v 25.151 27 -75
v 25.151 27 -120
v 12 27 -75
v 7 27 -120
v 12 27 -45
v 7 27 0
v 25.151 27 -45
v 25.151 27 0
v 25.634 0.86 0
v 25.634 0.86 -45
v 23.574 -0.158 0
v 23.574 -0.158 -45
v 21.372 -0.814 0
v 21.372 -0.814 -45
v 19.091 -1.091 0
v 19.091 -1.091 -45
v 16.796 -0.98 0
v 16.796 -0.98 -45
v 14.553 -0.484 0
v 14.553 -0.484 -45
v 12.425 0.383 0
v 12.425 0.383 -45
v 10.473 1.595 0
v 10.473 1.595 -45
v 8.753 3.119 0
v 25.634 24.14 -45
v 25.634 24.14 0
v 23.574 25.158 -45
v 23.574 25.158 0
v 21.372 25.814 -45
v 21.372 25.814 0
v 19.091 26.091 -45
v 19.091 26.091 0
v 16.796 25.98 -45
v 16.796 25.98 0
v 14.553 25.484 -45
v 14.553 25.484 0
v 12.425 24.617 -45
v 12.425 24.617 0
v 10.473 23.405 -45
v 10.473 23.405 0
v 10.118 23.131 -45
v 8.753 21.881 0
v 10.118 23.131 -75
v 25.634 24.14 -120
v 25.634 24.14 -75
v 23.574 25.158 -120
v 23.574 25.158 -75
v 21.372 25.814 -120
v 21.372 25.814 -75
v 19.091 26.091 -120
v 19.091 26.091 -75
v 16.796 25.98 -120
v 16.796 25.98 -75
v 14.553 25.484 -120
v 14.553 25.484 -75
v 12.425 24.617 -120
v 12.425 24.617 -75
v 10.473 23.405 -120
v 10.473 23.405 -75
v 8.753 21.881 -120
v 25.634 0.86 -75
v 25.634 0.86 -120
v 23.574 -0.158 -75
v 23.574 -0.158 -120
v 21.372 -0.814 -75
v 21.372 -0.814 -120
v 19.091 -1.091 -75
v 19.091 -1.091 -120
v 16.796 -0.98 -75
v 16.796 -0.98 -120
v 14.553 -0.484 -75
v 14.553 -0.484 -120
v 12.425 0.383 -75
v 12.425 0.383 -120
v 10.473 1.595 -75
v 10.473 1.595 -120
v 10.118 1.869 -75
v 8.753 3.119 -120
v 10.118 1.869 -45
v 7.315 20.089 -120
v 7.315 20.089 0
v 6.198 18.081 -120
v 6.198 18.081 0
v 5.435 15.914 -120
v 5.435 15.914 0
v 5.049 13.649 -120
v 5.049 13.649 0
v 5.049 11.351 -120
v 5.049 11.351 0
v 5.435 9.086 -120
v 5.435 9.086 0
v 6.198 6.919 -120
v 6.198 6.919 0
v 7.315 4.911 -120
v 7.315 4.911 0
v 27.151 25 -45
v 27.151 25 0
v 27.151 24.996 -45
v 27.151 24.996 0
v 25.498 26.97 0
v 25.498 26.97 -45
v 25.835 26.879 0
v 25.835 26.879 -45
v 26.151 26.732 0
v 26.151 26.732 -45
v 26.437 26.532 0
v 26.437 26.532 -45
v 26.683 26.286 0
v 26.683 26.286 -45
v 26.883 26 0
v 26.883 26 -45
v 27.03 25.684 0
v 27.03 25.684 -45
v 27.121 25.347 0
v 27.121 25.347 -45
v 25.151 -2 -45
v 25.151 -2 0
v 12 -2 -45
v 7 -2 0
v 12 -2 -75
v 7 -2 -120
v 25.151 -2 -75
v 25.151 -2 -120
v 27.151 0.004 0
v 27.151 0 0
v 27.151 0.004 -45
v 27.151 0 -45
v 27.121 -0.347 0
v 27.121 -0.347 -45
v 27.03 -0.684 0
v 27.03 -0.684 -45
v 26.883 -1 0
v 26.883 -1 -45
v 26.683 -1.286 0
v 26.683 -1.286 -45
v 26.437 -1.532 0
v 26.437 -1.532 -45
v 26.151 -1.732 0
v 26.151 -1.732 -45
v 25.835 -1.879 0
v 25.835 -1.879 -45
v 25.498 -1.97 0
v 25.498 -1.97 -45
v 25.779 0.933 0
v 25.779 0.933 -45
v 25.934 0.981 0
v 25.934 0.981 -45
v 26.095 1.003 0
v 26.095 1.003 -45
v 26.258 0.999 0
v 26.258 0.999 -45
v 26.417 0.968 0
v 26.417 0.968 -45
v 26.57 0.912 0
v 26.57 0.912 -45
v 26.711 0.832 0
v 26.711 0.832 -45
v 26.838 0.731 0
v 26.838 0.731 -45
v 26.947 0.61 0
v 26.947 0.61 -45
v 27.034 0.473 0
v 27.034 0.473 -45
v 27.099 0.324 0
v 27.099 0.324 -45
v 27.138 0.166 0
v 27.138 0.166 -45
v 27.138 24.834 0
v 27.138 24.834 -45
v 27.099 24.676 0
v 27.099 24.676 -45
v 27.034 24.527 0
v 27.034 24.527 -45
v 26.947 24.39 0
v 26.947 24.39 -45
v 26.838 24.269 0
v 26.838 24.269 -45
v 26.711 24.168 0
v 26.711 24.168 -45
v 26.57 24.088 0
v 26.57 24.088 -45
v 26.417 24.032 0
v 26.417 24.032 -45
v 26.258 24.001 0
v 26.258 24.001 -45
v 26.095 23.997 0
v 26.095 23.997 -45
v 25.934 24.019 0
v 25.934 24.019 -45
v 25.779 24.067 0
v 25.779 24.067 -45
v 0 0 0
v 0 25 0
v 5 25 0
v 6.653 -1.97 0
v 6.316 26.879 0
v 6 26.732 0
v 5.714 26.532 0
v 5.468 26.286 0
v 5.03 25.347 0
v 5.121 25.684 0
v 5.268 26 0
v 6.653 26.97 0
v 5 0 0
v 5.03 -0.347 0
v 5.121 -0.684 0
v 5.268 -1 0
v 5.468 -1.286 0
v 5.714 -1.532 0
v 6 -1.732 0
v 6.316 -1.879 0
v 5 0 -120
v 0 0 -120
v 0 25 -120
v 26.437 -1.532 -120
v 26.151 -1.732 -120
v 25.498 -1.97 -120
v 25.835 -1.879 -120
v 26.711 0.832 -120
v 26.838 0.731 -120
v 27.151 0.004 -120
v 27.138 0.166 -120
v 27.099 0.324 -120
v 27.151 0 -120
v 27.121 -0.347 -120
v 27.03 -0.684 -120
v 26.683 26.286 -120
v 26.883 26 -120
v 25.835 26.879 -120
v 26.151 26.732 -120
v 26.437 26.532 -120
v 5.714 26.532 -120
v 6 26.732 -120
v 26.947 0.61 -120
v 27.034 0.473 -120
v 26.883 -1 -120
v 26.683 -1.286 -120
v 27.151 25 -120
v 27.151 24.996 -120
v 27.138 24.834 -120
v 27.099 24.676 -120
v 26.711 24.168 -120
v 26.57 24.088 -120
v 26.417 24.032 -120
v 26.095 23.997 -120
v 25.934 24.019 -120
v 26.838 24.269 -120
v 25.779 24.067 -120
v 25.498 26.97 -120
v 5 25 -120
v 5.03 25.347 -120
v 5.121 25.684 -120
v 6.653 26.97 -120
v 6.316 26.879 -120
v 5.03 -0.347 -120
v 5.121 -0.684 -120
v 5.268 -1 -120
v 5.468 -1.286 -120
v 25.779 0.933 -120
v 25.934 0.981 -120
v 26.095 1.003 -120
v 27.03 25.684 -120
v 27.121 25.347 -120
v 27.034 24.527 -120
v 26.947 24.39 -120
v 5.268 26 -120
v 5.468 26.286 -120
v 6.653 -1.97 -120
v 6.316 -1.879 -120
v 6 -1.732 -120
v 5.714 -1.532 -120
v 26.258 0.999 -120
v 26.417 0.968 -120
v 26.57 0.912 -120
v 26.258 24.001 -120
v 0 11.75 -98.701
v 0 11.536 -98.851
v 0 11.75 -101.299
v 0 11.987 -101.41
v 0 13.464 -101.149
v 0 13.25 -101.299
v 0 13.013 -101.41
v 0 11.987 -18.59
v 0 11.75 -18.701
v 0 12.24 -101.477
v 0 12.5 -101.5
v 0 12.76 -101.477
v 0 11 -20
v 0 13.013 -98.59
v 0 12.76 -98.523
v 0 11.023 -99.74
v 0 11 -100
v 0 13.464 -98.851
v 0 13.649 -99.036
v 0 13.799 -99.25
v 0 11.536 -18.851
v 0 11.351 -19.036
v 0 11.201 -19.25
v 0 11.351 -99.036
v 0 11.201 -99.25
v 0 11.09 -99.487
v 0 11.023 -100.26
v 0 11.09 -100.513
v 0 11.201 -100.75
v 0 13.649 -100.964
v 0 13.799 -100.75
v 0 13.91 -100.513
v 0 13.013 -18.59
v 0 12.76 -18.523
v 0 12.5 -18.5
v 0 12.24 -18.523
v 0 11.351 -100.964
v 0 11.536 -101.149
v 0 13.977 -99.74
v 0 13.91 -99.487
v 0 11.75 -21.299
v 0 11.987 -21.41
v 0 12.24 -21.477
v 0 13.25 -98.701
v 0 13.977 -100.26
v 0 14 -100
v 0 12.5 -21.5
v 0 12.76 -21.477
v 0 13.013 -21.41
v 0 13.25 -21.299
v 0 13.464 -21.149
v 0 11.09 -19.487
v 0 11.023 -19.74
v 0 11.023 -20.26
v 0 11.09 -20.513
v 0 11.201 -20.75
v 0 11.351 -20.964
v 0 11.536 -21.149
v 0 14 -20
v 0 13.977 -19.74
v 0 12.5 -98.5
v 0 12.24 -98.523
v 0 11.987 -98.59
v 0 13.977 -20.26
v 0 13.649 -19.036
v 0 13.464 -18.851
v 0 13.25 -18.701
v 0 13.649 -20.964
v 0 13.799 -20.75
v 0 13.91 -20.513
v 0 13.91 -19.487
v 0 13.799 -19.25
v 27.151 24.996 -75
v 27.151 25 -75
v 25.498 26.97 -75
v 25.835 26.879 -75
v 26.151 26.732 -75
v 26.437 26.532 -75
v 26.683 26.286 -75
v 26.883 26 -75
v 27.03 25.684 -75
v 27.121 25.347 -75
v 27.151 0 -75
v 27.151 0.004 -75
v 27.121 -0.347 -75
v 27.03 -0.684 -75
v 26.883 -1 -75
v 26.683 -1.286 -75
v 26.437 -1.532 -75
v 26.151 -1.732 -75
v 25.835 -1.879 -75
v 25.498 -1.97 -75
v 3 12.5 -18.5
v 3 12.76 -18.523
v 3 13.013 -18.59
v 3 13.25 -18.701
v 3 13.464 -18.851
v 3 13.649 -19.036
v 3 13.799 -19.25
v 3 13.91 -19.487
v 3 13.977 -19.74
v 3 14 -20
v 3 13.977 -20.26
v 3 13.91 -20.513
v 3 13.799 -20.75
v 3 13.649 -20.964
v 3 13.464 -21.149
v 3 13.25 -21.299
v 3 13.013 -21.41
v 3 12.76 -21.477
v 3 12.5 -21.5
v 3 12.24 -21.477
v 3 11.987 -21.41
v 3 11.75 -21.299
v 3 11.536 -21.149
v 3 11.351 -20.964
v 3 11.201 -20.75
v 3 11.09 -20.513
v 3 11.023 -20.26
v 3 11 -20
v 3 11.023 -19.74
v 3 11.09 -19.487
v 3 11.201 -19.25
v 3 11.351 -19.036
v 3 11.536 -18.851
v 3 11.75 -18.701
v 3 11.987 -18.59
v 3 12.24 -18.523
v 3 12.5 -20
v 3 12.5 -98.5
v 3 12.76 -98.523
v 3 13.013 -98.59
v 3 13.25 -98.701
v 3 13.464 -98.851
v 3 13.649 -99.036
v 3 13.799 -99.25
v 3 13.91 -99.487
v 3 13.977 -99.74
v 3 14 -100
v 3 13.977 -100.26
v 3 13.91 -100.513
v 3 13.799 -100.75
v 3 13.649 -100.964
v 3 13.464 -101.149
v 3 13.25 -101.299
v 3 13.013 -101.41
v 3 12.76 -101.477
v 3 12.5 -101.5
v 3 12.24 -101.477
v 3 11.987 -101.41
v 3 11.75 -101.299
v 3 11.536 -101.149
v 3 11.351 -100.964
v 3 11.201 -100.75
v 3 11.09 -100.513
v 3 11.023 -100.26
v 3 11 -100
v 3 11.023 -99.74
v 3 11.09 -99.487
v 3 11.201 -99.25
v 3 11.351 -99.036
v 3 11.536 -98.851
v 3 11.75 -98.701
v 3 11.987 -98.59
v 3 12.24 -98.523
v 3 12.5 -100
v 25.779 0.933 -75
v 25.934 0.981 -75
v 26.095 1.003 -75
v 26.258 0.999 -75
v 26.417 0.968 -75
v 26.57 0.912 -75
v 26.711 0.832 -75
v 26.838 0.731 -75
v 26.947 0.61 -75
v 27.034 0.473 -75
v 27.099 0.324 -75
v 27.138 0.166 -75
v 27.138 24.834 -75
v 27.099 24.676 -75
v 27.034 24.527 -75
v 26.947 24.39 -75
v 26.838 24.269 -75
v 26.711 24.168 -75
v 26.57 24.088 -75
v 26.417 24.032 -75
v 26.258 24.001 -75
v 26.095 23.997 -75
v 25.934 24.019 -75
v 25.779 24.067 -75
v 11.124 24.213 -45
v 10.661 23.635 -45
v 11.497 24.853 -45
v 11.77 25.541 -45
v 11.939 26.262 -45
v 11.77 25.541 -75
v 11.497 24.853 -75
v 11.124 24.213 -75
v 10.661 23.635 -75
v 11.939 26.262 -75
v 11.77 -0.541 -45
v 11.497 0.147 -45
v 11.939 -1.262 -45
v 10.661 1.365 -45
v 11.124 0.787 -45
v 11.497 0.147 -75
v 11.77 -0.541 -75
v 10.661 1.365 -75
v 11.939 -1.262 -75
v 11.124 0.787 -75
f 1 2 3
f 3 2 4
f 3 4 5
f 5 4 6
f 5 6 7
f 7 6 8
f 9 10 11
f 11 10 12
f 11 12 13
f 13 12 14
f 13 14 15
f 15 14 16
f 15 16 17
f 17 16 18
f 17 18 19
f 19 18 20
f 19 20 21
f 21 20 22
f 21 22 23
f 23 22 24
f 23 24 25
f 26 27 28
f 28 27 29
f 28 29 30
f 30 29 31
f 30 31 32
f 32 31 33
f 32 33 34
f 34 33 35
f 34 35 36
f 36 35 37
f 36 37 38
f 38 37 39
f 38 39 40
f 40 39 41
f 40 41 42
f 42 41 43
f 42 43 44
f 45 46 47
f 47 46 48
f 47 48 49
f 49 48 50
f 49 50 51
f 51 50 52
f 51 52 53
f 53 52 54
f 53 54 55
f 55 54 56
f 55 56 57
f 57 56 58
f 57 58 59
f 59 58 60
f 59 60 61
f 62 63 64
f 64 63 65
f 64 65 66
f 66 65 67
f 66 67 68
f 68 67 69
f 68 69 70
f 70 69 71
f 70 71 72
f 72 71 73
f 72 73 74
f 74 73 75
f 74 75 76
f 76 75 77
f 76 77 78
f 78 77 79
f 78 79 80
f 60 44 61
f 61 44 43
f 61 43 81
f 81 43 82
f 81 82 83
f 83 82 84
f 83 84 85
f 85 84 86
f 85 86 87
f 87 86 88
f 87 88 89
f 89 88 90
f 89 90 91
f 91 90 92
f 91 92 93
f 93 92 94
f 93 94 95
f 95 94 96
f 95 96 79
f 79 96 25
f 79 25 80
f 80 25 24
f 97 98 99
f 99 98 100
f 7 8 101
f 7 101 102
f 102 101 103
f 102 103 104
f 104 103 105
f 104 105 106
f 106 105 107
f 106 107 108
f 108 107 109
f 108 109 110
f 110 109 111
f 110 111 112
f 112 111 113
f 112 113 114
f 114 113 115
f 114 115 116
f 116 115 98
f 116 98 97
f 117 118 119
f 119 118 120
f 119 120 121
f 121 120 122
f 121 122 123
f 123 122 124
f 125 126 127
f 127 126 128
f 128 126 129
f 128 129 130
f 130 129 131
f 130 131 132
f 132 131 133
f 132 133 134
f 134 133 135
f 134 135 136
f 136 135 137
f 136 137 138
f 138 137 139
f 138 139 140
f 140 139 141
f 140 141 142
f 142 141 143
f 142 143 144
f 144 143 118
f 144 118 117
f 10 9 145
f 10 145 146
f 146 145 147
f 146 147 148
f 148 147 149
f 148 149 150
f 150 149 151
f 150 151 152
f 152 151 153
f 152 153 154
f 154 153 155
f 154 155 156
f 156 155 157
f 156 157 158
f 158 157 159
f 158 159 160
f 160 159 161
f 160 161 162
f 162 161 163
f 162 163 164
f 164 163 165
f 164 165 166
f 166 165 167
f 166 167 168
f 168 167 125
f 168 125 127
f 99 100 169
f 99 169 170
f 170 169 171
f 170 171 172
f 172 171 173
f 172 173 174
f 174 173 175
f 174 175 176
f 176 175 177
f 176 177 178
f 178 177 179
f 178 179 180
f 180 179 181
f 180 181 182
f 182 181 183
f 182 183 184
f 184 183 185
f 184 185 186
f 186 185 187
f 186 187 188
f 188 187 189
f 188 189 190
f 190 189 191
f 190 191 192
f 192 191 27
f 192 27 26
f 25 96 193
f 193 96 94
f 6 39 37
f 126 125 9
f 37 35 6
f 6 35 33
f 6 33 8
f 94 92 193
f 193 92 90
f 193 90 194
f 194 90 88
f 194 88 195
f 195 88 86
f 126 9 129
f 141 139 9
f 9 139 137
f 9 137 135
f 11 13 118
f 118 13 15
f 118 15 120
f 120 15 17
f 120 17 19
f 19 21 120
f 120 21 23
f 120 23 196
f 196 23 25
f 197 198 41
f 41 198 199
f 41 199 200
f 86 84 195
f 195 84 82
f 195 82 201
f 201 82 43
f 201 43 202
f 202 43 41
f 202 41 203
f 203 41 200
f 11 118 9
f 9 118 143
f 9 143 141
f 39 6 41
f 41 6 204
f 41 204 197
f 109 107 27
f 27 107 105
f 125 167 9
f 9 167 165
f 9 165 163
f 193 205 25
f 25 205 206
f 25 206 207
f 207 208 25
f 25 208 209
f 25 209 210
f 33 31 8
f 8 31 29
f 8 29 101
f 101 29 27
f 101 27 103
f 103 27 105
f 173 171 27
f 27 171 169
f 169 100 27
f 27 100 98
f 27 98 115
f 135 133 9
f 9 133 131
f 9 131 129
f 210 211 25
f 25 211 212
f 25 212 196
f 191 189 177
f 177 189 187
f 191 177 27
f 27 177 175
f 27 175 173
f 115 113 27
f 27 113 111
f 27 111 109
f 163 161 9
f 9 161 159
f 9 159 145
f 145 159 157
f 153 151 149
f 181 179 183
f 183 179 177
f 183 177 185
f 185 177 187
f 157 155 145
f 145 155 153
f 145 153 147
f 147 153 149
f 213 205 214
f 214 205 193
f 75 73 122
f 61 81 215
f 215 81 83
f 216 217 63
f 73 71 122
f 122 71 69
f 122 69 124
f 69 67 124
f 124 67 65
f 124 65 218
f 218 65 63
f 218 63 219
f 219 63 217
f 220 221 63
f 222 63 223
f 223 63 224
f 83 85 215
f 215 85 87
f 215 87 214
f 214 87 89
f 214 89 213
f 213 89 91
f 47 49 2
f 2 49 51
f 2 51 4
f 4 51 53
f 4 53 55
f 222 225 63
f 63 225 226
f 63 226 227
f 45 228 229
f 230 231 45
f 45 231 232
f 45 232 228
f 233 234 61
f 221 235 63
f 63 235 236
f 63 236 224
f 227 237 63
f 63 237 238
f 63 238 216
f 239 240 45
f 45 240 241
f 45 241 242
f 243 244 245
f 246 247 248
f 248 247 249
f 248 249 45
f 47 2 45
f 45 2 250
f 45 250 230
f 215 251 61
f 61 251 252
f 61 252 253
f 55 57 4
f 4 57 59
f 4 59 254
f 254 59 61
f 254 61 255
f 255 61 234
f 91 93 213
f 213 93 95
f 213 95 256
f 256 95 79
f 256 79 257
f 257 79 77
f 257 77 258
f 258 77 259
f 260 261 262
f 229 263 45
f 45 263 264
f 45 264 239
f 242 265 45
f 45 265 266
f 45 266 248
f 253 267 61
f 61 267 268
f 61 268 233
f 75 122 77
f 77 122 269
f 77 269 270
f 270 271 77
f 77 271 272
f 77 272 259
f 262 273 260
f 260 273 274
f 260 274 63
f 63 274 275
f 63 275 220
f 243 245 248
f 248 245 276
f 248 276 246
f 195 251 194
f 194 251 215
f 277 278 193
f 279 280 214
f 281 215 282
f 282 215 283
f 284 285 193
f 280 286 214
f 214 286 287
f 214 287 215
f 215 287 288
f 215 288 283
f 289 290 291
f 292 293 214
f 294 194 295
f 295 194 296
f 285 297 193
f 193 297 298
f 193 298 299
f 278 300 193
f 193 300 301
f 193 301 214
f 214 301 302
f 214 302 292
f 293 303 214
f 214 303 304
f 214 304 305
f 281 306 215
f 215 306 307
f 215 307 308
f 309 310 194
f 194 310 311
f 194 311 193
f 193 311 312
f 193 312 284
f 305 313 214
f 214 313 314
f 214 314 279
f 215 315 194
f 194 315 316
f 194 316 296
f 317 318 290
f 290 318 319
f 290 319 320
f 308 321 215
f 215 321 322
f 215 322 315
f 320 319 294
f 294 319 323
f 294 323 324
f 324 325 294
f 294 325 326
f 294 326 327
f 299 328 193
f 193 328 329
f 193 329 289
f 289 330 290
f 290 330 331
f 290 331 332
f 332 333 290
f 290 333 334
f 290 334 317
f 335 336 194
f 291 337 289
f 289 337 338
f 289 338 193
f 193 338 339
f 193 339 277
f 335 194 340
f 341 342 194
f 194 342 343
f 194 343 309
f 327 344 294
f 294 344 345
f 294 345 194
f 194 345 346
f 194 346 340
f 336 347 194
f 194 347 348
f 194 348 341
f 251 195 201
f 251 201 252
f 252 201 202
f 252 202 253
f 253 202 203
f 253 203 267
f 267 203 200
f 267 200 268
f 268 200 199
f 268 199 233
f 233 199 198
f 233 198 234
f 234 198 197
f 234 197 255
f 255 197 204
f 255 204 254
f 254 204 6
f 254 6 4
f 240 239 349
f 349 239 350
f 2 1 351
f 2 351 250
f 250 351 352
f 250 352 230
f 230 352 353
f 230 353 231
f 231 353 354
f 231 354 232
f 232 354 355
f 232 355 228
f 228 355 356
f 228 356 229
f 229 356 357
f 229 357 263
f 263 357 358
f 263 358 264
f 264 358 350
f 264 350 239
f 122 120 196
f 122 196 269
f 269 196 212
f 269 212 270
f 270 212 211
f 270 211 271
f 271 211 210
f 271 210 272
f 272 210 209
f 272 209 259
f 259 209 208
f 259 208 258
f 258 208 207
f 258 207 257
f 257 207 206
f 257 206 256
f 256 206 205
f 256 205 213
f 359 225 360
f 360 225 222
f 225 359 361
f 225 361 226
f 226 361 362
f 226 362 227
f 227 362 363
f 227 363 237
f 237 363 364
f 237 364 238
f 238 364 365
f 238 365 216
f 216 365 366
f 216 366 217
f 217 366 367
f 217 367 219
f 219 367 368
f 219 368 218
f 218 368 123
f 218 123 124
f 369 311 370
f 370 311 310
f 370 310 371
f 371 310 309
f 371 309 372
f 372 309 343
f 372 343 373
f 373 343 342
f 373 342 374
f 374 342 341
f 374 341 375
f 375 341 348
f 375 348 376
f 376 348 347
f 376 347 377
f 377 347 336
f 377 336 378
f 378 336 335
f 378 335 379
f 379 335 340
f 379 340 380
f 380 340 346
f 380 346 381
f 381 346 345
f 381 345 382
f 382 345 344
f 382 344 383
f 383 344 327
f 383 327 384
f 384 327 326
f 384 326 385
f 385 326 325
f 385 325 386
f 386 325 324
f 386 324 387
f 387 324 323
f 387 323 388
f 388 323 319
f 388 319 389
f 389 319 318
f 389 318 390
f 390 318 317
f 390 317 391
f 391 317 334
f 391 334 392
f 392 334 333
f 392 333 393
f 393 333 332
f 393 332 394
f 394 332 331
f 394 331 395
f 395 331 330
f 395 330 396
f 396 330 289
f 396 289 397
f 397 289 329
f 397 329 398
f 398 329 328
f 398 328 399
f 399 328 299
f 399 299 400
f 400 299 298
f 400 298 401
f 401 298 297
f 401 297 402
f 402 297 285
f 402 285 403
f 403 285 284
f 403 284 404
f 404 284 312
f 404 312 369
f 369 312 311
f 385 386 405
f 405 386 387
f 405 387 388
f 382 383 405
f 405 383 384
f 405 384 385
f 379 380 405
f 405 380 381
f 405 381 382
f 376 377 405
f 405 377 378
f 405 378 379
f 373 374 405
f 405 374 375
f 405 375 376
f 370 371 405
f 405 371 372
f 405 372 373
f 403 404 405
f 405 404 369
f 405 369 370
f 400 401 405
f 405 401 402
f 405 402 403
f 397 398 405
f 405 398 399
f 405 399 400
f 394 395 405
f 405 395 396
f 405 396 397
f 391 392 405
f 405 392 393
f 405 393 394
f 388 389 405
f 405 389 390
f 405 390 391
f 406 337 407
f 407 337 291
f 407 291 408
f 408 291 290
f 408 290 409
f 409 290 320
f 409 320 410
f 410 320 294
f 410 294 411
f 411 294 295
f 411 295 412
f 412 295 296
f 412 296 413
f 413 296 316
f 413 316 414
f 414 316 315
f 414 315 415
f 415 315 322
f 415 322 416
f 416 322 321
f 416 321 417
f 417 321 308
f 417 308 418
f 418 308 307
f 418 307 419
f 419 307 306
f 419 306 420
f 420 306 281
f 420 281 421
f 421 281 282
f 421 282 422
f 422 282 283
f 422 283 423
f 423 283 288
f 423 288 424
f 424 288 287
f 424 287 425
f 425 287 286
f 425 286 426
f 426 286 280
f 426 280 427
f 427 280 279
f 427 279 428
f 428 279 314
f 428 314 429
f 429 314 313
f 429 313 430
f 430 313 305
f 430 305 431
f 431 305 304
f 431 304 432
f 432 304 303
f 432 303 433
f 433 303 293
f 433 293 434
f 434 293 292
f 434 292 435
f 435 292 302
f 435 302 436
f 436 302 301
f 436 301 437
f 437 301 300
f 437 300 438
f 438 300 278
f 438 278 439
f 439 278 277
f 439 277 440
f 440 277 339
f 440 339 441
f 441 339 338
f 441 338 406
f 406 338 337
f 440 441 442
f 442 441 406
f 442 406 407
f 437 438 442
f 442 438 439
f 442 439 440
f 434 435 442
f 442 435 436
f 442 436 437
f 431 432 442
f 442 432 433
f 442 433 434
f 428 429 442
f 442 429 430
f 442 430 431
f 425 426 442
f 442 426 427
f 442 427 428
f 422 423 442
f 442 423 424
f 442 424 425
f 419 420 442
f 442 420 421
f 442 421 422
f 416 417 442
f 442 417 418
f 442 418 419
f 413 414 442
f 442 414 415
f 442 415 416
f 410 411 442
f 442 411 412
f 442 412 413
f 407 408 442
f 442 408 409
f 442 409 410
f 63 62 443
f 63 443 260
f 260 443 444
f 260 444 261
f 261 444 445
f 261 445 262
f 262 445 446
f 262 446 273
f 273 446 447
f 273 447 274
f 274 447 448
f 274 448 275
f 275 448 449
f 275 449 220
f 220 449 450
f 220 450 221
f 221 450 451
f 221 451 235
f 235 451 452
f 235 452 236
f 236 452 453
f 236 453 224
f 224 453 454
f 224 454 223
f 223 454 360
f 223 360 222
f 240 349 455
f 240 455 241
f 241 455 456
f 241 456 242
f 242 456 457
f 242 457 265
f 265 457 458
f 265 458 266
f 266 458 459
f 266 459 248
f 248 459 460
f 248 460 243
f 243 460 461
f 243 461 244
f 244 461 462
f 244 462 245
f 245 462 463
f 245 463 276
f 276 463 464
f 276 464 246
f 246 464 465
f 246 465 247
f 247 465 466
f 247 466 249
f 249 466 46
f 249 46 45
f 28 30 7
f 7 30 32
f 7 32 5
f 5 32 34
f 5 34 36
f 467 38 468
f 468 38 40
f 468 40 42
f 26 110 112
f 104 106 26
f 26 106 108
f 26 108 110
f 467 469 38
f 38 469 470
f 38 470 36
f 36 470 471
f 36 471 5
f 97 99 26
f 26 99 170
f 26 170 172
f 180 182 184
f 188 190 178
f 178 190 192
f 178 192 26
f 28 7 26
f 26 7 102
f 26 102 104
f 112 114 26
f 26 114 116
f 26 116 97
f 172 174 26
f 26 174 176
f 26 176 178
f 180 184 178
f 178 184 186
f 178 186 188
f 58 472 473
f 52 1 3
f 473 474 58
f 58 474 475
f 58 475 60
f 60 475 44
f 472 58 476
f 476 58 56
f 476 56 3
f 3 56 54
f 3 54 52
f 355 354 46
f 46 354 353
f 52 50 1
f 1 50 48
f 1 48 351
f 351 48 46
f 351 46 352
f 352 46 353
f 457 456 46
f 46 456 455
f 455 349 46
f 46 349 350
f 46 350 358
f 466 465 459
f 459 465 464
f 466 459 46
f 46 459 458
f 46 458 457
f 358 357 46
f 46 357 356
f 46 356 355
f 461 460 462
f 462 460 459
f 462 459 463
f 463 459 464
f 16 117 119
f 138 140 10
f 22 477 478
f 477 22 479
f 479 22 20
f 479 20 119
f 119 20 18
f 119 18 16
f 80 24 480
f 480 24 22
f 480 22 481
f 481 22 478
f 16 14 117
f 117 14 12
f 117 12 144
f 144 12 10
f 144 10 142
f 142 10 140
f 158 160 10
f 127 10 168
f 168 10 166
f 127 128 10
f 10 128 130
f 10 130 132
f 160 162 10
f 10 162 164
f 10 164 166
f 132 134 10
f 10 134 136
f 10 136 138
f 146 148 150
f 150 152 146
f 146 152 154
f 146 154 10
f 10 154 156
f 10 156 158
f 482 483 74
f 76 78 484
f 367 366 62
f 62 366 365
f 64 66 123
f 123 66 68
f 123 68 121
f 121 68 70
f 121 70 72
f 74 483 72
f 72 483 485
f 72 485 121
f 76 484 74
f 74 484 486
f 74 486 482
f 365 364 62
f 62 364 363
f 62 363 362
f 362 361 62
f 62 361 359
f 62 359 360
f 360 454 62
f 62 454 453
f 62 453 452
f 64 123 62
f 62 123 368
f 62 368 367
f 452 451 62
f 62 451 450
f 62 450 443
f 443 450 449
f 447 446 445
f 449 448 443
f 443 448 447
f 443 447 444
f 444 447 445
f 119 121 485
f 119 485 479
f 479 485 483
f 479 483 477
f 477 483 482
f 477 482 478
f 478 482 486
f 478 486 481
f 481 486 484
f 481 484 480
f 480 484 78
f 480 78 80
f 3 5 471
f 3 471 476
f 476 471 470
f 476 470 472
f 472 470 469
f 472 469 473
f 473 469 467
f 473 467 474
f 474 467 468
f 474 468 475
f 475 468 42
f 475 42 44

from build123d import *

# Parameters (mm, degrees)
SKETCH1_W        = 120
SKETCH1_H        = 25
BASE_DEPTH       = 5
CLIP_DEPTH       = 120
SKETCH3_R        = 1.5
SCREWHOLES_DEPTH = 3
ROUNDEDCORNERS_R = 1
SKETCH4_W        = 15.150992531
SKETCH4_H        = 29
FINGERGAP_DEPTH  = 15
FINGERGROOVE_R   = 5


with BuildPart() as part:
    # Sketch1 → Base (new body)
    with BuildSketch(Plane(origin=(0, 0, 0), x_dir=(0, 0, -1), z_dir=(1, 0, 0))):
        with Locations((60, 12.5)):
            Rectangle(SKETCH1_W, SKETCH1_H)
    extrude(amount=BASE_DEPTH)

    # Sketch2 → Clip (add)
    with BuildSketch(Plane.XY):
        with BuildLine():
            Line((25.150992531, 27), (7, 27))
            ThreePointArc((7, 27), (5.585786438, 26.414213562), (5, 25))
            Line((5, 25), (5, 12.5))
            ThreePointArc((5, 12.5), (12.740541767, 24.773008971), (27.150992531, 23.075468156))
            Line((27.150992531, 23.075468156), (27.150992531, 25))
            ThreePointArc((27.150992531, 25), (26.565206094, 26.414213562), (25.150992531, 27))
        make_face()
        with BuildLine():
            ThreePointArc((27.150992531, 1.924531844), (12.740541767, 0.226991029), (5, 12.5))
            Line((5, 12.5), (5, 0))
            ThreePointArc((5, 0), (5.585786438, -1.414213562), (7, -2))
            Line((7, -2), (25.150992531, -2))
            ThreePointArc((25.150992531, -2), (26.565206094, -1.414213562), (27.150992531, 0))
            Line((27.150992531, 0), (27.150992531, 1.924531844))
        make_face()
    extrude(amount=-CLIP_DEPTH)

    # Sketch3 → ScrewHoles (cut)
    with BuildSketch(Plane.ZY):
        with Locations((-100, 12.5)):
            Circle(SKETCH3_R)
        with Locations(Location((-20, 12.5, 0), (0, 0, 180))):
            Circle(SKETCH3_R)
    extrude(amount=-SCREWHOLES_DEPTH, mode=Mode.SUBTRACT)

    # RoundedCorners
    roundedcorners_edges = [part.edges().sort_by_distance(p)[0] for p in [
        (27.150992531, 23.075468156, -60),
        (27.150992531, 1.924531844, -60),
    ]]
    fillet(roundedcorners_edges, radius=ROUNDEDCORNERS_R)

    # Sketch4 → FingerGap (cut, symmetric)
    with BuildSketch(Plane(origin=(0, 0, -60), x_dir=(-1, 0, 0), z_dir=(0, 0, -1))):
        with Locations((-19.575496265, 12.5)):
            Rectangle(SKETCH4_W, SKETCH4_H)
    extrude(amount=FINGERGAP_DEPTH, both=True, mode=Mode.SUBTRACT)

    # FingerGroove
    # the kernel refuses this fillet: 5 mm, written as the material it takes off along each edge
    with BuildSketch(Plane(origin=(12, 0.608826803, -75), x_dir=(-0.8309099585253181, 0.5564069022068779, 0), z_dir=(0, 0, 1))) as fingergroove_piece_1:
        with BuildLine():
            CenterArc((2.68094623, 4.982639626), FINGERGROOVE_R, 213.807673482, 51.416397028)
            Line((-1.473603562, 2.200605115), (0, 0))
            ThreePointArc((0, 0), (1.132325116, 0.047220218), (2.264650232, 0))
        make_face()
    extrude(amount=30, mode=Mode.SUBTRACT)
    with BuildSketch(Plane(origin=(12, 24.391173197, -75), x_dir=(-0.8309099585253178, -0.5564069022068784, 0), z_dir=(0, 0, 1))) as fingergroove_piece_2:
        with BuildLine():
            CenterArc((2.68094623, -4.982639626), FINGERGROOVE_R, 94.77592949, 51.416397028)
            Line((-1.473603562, -2.200605115), (0, 0))
            ThreePointArc((0, 0), (1.132325116, -0.047220218), (2.264650232, 0))
        make_face()
    extrude(amount=30, mode=Mode.SUBTRACT)


solid = part.part
